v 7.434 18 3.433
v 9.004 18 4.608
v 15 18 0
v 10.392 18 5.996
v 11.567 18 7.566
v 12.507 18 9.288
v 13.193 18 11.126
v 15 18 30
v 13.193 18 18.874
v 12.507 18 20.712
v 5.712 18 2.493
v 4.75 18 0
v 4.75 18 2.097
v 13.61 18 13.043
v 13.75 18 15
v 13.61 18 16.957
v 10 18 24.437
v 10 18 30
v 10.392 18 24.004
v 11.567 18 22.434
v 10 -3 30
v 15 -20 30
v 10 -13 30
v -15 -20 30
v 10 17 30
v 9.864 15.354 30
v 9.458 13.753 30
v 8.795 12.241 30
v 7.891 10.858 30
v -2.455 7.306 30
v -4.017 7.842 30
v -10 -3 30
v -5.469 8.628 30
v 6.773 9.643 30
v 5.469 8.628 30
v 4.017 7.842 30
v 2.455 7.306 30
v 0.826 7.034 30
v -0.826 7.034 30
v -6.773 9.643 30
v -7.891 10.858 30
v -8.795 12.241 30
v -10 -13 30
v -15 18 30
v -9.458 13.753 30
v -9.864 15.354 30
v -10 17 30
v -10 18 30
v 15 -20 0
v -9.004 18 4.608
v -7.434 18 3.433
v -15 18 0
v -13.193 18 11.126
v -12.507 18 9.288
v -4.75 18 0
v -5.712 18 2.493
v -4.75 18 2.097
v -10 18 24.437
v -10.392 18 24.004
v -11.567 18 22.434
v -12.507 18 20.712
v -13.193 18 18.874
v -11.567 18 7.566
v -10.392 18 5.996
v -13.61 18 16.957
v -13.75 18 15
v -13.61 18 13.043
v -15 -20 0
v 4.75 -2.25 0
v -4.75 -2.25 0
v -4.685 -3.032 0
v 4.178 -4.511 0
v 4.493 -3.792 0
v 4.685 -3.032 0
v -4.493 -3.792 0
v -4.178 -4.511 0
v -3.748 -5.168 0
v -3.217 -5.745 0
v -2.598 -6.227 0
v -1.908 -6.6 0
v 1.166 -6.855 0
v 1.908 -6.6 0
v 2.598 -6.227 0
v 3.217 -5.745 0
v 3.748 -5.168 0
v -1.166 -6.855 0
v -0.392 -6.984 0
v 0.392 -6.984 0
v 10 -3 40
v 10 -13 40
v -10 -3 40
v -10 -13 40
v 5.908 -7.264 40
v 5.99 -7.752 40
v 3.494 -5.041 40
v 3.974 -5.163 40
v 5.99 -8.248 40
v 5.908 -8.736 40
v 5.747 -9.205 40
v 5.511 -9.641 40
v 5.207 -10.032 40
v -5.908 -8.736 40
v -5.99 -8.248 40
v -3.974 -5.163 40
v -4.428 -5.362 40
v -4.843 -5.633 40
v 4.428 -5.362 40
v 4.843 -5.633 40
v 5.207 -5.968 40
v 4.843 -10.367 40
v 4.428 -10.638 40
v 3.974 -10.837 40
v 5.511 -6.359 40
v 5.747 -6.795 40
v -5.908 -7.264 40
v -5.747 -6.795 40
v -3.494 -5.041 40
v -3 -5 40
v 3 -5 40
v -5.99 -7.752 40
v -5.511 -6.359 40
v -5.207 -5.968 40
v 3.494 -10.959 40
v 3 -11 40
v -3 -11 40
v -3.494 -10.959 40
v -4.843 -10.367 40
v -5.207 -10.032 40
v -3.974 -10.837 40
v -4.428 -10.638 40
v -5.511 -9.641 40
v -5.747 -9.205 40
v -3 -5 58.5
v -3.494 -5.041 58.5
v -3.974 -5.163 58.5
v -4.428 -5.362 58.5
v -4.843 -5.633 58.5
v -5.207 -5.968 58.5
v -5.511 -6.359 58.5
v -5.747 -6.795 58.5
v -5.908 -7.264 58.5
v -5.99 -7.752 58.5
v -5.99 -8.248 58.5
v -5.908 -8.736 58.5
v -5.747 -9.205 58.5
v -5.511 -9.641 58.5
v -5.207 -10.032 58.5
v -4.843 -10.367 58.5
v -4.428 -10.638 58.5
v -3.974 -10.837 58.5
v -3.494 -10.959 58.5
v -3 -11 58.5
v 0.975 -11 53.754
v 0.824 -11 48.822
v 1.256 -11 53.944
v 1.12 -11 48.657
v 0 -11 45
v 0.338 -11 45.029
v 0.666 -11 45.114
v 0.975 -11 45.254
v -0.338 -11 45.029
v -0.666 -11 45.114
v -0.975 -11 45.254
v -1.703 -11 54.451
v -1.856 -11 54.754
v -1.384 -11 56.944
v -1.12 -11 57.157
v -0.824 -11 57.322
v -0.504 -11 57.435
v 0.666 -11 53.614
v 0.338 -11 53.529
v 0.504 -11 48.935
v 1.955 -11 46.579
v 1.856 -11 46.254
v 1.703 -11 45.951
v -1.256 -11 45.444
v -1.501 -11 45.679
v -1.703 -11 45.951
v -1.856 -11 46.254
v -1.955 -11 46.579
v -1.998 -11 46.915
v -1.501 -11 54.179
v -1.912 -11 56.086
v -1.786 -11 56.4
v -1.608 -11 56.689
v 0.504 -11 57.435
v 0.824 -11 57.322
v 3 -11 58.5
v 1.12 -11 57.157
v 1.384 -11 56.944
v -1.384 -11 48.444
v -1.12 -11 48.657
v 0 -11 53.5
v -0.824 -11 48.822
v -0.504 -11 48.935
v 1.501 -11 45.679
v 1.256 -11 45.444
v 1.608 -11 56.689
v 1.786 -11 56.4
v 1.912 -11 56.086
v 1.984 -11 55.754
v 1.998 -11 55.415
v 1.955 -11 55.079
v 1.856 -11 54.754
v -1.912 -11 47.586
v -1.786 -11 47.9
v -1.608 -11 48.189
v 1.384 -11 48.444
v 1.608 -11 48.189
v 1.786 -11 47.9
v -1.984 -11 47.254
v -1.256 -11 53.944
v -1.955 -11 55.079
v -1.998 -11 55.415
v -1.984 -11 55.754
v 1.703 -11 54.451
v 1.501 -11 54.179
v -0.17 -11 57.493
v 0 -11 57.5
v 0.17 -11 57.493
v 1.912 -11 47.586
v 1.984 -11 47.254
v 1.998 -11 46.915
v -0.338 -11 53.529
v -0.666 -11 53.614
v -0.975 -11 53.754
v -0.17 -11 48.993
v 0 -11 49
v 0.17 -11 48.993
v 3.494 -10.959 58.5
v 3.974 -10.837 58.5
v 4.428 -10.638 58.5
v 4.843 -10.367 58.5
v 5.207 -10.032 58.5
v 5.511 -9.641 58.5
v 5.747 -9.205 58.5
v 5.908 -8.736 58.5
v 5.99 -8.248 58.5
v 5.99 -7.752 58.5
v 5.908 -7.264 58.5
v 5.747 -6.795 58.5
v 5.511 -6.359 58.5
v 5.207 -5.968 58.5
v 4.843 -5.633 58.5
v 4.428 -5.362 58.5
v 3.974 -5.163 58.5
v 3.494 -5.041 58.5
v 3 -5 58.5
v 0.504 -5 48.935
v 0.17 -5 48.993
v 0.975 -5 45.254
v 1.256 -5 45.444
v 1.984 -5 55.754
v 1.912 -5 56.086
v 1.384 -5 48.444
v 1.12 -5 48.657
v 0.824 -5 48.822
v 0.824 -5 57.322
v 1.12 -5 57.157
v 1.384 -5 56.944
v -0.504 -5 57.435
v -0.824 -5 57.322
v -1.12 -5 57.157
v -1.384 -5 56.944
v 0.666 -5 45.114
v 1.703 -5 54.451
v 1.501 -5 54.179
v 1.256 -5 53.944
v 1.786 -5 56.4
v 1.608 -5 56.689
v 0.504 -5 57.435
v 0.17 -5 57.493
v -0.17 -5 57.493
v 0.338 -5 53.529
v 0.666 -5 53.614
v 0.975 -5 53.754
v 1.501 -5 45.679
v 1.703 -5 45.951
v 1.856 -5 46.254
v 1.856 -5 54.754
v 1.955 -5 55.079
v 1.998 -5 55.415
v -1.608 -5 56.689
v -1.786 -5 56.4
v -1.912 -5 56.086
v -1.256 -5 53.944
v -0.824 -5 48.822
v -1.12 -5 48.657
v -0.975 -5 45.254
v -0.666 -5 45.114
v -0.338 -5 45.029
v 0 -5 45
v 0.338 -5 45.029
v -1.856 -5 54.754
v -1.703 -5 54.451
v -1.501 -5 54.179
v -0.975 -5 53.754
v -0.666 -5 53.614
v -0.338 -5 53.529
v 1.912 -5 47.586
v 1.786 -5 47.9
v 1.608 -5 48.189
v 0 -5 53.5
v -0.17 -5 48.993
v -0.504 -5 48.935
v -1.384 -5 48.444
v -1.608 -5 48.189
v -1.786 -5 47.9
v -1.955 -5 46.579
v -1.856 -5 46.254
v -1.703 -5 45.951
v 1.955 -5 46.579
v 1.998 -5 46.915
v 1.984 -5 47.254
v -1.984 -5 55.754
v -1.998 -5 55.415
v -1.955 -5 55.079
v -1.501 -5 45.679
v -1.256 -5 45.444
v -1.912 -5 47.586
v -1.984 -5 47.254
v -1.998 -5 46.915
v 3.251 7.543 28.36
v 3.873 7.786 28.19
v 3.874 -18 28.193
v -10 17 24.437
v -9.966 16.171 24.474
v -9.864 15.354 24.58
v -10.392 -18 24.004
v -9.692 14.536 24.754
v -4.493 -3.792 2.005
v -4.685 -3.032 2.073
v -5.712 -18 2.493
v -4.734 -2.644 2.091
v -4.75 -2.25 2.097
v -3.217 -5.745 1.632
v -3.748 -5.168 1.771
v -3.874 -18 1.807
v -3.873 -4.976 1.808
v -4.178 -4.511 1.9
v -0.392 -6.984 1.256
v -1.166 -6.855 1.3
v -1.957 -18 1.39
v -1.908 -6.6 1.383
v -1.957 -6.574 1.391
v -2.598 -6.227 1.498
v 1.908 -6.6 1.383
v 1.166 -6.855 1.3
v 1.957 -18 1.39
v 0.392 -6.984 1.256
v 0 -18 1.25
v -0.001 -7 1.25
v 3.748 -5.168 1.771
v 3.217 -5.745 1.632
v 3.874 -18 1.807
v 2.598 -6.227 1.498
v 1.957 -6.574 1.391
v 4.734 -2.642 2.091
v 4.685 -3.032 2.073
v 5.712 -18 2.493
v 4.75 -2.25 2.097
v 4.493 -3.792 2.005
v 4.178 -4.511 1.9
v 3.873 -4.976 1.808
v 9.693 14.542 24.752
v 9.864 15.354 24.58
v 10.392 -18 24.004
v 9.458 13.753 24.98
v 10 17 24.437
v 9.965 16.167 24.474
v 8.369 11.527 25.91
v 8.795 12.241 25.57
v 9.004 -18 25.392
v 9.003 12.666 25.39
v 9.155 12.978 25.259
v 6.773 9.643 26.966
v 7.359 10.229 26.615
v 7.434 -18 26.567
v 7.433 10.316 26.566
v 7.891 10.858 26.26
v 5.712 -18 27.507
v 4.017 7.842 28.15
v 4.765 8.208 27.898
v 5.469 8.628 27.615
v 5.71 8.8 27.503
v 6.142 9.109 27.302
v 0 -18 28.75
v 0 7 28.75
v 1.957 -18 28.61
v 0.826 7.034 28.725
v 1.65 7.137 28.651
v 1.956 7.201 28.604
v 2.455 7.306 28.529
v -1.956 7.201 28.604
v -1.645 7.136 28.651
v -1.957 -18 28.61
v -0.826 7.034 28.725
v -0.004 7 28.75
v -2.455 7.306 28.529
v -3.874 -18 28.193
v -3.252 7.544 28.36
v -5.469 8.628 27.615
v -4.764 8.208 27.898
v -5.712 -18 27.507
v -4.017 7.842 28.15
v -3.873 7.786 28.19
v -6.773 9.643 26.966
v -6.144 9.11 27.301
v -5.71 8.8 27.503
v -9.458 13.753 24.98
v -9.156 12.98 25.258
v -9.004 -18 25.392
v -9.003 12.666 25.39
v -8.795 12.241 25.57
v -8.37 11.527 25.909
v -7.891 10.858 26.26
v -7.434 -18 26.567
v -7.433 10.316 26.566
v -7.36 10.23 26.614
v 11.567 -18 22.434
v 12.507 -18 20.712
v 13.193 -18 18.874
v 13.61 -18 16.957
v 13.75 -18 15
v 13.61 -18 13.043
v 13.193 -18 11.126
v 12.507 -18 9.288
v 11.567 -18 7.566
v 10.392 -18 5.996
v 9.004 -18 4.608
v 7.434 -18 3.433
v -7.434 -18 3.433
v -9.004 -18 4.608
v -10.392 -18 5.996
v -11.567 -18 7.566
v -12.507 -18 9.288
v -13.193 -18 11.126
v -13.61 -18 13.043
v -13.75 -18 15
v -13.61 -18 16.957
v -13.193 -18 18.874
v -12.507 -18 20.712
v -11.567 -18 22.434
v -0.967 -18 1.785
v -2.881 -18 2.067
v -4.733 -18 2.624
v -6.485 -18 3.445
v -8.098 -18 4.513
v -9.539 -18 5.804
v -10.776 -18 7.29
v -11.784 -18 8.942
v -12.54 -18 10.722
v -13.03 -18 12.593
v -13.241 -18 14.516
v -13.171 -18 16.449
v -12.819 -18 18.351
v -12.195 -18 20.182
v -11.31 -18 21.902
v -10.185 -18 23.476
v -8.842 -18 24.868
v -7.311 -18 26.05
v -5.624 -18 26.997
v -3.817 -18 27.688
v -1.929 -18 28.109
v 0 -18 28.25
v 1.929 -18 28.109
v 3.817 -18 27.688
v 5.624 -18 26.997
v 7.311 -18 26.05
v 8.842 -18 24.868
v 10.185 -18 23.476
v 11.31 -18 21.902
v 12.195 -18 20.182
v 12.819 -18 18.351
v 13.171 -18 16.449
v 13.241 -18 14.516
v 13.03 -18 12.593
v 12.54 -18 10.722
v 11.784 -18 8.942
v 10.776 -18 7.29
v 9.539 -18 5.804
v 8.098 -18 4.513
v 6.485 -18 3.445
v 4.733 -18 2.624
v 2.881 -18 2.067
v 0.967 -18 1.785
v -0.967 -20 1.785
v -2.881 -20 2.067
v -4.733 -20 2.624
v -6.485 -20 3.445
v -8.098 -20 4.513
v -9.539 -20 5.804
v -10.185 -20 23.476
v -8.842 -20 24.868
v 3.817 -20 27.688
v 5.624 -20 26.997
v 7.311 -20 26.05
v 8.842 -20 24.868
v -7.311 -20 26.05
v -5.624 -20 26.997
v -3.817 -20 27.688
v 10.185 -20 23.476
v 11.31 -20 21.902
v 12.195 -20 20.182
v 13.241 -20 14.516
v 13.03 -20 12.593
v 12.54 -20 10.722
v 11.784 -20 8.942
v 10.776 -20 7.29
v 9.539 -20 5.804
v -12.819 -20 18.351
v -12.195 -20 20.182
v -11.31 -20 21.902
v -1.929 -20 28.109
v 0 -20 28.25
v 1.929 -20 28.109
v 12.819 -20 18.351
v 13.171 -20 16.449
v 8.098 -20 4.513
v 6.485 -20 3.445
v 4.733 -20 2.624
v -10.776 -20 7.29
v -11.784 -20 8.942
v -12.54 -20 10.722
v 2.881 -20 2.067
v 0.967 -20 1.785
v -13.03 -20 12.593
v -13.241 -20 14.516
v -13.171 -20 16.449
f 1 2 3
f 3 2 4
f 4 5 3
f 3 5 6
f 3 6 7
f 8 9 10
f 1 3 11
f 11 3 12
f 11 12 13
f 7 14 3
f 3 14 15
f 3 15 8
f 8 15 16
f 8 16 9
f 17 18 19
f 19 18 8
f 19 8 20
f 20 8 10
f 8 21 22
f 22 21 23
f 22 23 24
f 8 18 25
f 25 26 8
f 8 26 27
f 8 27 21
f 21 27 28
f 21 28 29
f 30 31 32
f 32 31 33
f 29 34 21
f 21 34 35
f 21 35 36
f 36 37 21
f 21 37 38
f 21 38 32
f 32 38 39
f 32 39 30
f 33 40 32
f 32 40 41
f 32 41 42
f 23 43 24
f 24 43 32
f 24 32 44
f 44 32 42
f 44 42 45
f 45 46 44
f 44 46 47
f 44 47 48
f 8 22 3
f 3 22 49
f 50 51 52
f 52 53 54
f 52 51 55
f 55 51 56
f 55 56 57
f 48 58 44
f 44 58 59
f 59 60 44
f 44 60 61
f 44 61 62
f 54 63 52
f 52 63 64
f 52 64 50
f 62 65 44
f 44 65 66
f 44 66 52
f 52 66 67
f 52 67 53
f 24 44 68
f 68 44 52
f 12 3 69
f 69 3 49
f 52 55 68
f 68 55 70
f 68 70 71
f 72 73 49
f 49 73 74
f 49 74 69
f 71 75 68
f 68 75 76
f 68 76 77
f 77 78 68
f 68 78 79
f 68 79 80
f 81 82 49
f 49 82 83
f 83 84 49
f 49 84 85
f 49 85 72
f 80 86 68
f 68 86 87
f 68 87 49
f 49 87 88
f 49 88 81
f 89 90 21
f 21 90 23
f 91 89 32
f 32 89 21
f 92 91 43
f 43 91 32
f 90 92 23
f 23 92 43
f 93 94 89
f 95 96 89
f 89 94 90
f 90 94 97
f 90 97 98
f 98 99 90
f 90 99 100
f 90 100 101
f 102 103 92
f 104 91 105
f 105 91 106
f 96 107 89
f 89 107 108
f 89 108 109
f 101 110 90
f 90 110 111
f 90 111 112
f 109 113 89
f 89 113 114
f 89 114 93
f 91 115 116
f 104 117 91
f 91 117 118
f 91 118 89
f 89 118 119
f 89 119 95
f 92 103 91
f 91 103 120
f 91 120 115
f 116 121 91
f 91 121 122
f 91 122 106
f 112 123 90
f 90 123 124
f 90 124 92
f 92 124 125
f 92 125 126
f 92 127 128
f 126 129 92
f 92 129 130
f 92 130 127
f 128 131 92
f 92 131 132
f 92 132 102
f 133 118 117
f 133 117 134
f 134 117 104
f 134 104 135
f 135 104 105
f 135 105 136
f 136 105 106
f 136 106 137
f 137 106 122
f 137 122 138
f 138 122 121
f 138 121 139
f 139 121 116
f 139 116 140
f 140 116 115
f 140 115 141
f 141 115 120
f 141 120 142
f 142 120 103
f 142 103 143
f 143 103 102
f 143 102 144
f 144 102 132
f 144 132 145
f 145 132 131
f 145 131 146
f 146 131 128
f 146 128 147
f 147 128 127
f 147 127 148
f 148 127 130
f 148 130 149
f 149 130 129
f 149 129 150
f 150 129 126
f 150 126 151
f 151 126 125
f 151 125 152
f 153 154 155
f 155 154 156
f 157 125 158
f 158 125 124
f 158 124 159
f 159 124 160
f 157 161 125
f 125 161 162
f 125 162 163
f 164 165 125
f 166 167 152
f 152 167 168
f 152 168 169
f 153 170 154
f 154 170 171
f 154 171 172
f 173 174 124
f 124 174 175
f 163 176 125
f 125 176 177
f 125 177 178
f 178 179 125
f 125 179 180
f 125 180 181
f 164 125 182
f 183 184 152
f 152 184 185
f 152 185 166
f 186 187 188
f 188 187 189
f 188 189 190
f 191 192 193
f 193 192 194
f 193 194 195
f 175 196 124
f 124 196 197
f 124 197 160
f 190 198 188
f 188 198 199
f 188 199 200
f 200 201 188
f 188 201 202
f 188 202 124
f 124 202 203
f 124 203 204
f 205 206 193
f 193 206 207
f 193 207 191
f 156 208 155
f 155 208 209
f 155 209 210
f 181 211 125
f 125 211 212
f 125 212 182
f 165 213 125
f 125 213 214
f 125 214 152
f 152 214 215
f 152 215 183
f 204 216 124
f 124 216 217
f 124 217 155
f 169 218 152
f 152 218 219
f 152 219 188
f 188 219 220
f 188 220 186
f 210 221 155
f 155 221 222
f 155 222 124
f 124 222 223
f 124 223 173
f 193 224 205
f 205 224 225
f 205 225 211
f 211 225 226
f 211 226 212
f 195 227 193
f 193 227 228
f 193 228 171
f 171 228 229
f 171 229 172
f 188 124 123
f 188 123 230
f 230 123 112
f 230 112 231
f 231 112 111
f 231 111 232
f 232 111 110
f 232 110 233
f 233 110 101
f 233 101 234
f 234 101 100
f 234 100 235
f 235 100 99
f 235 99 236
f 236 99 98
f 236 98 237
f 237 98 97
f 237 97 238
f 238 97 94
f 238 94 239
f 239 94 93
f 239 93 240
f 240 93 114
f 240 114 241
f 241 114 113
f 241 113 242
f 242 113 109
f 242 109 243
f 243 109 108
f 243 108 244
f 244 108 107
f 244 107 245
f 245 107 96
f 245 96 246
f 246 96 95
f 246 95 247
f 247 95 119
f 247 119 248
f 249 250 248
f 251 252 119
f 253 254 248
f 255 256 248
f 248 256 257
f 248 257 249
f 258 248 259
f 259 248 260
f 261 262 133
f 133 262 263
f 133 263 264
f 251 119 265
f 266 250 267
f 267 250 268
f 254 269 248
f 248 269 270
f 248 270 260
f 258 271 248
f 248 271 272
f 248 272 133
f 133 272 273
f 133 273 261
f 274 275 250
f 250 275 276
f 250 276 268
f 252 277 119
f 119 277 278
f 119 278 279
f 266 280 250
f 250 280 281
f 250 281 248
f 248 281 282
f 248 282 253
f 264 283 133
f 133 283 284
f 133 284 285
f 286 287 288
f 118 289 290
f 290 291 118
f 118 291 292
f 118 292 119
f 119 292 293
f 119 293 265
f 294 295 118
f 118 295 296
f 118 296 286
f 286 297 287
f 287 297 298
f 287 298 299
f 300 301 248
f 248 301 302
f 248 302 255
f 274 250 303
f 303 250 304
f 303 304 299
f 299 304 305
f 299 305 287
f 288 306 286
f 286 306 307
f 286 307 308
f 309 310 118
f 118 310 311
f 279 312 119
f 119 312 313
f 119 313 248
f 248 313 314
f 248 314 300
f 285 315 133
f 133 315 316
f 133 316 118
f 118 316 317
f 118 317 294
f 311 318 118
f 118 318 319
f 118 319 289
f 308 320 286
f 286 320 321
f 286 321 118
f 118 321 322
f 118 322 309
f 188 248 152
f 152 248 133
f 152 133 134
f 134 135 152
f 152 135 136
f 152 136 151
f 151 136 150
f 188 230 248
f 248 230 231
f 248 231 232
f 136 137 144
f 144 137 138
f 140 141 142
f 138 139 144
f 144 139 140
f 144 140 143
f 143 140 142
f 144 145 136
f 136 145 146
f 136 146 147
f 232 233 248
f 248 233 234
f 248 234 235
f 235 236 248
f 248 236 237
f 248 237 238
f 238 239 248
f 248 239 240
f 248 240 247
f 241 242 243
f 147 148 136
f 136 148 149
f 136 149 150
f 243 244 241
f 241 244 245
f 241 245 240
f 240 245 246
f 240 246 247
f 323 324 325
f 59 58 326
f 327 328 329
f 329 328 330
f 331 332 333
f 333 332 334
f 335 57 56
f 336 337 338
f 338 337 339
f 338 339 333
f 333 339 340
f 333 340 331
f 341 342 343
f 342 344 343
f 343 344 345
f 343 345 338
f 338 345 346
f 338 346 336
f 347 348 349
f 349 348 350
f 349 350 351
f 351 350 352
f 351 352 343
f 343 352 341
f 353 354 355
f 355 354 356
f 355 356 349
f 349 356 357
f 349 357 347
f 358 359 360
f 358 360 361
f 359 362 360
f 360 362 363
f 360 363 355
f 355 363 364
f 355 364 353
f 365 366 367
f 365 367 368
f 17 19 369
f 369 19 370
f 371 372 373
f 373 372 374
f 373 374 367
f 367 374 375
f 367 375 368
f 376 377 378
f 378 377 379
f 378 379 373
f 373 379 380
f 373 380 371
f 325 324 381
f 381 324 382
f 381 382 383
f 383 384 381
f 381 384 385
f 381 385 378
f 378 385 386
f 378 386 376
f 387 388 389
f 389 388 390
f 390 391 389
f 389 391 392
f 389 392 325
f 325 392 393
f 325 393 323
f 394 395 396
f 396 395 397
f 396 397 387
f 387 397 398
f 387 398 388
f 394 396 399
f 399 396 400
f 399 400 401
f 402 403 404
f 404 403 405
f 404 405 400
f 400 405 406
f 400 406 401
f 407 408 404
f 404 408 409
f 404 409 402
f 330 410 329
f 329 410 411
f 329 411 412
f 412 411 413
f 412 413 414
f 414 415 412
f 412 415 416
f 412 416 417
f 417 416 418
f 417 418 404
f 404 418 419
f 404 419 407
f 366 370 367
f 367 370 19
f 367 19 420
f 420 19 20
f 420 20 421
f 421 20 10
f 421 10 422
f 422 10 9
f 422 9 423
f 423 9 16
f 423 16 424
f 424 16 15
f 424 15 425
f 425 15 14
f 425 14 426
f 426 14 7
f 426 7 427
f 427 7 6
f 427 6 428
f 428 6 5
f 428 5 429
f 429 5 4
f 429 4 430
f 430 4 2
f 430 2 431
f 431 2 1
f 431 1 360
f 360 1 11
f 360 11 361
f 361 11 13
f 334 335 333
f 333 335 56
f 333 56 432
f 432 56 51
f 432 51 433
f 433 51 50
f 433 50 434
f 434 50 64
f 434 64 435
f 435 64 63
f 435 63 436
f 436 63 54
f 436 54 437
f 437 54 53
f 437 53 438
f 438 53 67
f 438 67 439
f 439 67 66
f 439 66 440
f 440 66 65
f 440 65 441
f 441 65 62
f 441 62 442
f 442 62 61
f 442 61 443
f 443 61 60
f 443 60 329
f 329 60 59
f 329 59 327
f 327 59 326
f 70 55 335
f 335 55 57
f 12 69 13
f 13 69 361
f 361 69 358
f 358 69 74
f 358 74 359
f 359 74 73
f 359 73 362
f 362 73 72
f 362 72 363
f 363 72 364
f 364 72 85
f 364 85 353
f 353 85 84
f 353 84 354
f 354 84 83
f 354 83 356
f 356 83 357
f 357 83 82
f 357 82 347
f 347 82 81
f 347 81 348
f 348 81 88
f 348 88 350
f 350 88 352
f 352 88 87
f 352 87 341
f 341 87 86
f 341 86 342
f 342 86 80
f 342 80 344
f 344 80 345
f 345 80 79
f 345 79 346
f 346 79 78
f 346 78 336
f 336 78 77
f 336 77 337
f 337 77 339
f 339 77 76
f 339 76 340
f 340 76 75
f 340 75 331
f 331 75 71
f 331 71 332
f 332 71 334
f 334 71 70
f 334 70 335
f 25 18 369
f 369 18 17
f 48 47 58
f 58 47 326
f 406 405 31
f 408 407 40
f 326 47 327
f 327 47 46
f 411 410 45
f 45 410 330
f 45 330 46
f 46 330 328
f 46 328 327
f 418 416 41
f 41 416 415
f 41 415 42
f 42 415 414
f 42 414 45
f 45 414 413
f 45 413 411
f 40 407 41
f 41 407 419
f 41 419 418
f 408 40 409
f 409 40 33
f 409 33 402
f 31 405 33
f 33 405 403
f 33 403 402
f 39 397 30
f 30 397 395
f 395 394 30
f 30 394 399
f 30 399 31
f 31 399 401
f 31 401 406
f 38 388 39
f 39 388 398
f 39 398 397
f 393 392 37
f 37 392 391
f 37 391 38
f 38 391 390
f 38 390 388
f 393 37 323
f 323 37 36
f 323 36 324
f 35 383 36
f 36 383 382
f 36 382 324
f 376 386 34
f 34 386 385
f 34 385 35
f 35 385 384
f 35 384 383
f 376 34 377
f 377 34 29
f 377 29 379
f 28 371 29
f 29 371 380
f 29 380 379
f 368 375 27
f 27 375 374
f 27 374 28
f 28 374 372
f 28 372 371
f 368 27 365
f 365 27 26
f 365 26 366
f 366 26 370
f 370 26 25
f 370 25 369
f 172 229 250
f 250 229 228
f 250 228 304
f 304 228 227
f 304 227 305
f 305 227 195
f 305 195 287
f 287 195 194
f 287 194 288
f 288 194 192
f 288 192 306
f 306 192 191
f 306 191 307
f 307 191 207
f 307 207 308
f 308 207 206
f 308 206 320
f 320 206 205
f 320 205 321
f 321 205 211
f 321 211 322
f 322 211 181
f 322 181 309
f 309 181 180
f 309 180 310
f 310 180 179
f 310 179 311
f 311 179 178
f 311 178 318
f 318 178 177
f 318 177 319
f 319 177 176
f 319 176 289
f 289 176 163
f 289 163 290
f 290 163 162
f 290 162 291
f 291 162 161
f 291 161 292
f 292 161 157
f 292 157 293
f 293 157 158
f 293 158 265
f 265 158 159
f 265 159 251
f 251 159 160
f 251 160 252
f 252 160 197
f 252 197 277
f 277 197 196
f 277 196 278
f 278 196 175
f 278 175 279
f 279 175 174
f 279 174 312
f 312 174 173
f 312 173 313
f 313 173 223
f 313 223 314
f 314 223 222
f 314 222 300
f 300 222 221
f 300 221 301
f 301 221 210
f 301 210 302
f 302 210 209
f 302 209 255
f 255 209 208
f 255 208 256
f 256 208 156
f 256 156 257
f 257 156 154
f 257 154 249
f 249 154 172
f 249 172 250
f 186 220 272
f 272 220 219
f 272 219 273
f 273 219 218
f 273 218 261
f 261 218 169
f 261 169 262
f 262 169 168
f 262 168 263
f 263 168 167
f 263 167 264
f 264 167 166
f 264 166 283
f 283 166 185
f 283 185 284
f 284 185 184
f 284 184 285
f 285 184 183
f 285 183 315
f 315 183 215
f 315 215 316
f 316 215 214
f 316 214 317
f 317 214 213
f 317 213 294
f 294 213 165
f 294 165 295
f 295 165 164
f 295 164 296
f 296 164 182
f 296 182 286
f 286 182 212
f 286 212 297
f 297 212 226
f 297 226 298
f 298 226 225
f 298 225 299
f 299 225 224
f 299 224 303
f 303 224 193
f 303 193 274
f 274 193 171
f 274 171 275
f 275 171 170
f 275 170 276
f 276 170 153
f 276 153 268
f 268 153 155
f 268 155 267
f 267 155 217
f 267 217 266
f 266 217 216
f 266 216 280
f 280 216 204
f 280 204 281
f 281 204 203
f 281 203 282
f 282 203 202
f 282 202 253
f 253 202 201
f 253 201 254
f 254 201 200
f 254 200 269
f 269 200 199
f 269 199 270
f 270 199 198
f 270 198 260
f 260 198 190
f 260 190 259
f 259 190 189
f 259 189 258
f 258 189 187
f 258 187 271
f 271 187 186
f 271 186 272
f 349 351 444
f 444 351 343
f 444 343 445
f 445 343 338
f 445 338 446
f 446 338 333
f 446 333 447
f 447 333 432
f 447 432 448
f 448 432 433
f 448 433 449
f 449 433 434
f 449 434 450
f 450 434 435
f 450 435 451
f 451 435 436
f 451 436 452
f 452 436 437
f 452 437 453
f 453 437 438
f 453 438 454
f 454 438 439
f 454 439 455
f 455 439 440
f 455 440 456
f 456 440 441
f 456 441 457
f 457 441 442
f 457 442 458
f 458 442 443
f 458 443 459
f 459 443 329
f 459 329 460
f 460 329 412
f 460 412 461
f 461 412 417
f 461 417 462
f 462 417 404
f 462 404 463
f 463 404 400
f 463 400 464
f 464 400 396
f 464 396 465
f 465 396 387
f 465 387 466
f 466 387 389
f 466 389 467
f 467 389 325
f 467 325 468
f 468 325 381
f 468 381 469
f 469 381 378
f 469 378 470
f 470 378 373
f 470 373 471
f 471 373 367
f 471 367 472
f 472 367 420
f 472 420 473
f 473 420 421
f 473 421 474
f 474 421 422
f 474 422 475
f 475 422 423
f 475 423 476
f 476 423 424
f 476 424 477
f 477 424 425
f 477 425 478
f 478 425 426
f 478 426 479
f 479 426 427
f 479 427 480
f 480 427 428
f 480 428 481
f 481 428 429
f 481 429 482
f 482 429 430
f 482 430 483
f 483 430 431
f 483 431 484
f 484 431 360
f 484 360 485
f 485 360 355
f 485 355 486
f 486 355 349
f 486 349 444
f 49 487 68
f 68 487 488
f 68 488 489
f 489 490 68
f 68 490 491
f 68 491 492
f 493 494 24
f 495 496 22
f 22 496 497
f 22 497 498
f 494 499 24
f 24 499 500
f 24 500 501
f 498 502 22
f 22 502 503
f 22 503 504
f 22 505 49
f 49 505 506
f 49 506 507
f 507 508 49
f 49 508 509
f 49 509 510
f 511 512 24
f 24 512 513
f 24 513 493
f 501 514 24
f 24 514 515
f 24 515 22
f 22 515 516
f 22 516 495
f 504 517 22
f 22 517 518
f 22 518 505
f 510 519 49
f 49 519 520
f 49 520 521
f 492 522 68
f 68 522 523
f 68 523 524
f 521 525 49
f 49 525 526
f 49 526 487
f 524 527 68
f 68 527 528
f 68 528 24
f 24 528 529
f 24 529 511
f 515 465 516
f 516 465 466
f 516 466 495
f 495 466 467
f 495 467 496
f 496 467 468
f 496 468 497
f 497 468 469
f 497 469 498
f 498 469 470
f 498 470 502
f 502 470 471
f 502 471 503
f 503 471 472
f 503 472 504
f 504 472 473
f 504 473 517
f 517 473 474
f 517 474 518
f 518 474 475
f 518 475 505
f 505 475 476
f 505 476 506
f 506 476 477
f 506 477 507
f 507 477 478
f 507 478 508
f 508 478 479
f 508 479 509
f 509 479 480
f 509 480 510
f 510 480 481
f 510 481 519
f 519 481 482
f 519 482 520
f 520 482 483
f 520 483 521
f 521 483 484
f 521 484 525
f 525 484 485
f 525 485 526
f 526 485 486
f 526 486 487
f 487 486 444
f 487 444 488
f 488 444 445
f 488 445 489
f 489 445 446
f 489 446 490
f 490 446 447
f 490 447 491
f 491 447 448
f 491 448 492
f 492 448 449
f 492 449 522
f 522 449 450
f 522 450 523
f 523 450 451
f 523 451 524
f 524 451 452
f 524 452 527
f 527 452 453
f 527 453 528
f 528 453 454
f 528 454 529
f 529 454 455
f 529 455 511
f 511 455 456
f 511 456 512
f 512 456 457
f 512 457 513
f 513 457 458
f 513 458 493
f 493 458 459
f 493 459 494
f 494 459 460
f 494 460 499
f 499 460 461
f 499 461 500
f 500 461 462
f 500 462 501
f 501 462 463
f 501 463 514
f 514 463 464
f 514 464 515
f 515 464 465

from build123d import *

# Parameters (mm, degrees)
SKETCH1_W               = 30
SKETCH1_H               = 36
BOSS_EXTRUDE1_DEPTH     = 30
SKETCH2_W               = 20
SKETCH2_H               = 10
BOSS_EXTRUDE2_DEPTH     = 10
BOSS_EXTRUDE3_DEPTH     = 18.5
CUT_EXTRUDE2_REACH      = 72.308
SKETCH4_R               = 13.75
CUT_EXTRUDE5_REACH      = 65.018
CUT_EXTRUDE5_END_RADIUS = 13.75
CUT_EXTRUDE6_REACH      = 40.066
CUT_EXTRUDE6_END_RADIUS = 13.75
CUT_EXTRUDE7_REACH      = 72.308
SKETCH9_R               = 2
SKETCH10_W              = 30
SKETCH10_H              = 30
BOSS_EXTRUDE4_DEPTH     = 2
CUT_EXTRUDE8_REACH      = 72.308
SKETCH11_R              = 13.25


with BuildPart() as part:
    # Sketch1 → Boss-Extrude1 (new body)
    with BuildSketch(Plane.XY):
        Rectangle(SKETCH1_W, SKETCH1_H)
    extrude(amount=BOSS_EXTRUDE1_DEPTH)

    # Sketch2 → Boss-Extrude2 (add)
    with BuildSketch(Plane.XY.offset(30)):
        with Locations((0, -8)):
            Rectangle(SKETCH2_W, SKETCH2_H)
    extrude(amount=BOSS_EXTRUDE2_DEPTH)

    # Sketch3 → Boss-Extrude3 (add)
    with BuildSketch(Plane.XY.offset(40)):
        with BuildLine():
            Line((-3, -5), (3, -5))
            ThreePointArc((3, -5), (6, -8), (3, -11))
            Line((3, -11), (-3, -11))
            ThreePointArc((-3, -11), (-6, -8), (-3, -5))
        make_face()
    extrude(amount=BOSS_EXTRUDE3_DEPTH)

    # Sketch4 → Cut-Extrude2 (cut, up to next)
    with BuildSketch(Plane(origin=(0, 18, 0), x_dir=(1, 0, 0), z_dir=(0, 1, 0)), mode=Mode.PRIVATE) as cut_extrude2_sk1:
        with Locations(Location((0, -15, 0), (0, 0, 270))):
            Circle(SKETCH4_R)
    cut_extrude2_tool1 = extrude(cut_extrude2_sk1.sketch, amount=-CUT_EXTRUDE2_REACH, mode=Mode.PRIVATE) & part.part
    add(cut_extrude2_tool1.solids().sort_by_distance((0, 18, 15))[0], mode=Mode.SUBTRACT)

    # Cut-Extrude5: up to this cylinder (the profile starts outside it)
    cut_extrude5_end = Plane(origin=(0, 7.875, 15), z_dir=(0, 1, 0)) * Cylinder(CUT_EXTRUDE5_END_RADIUS, 158.536, mode=Mode.PRIVATE)
    # Sketch6 → Cut-Extrude5 (cut, up to the surface)
    with BuildSketch(Plane(origin=(0, 0, 0), x_dir=(-1, 0, 0), z_dir=(0, 0, -1)), mode=Mode.PRIVATE) as cut_extrude5_sk1:
        with BuildLine():
            Line((-4.75, -2.25), (-4.75, 18))
            ThreePointArc((-4.75, 18), (0, 22.75), (4.75, 18))
            Line((4.75, 18), (4.75, -2.25))
            ThreePointArc((4.75, -2.25), (0, -7), (-4.75, -2.25))
        make_face()
    cut_extrude5_tool1 = extrude(cut_extrude5_sk1.sketch, amount=-CUT_EXTRUDE5_REACH, mode=Mode.PRIVATE) - cut_extrude5_end
    add(cut_extrude5_tool1.solids().sort_by_distance((0, 7.875, 0))[0], mode=Mode.SUBTRACT)

    # Cut-Extrude6: up to this cylinder (the profile starts outside it)
    cut_extrude6_end = Plane(origin=(0, 17.5, 15), z_dir=(0, 1, 0)) * Cylinder(CUT_EXTRUDE6_END_RADIUS, 108.632, mode=Mode.PRIVATE)
    # Sketch8 → Cut-Extrude6 (cut, up to the surface)
    with BuildSketch(Plane.XY.offset(30), mode=Mode.PRIVATE) as cut_extrude6_sk1:
        with BuildLine():
            Line((-10, 17), (-10, 18))
            ThreePointArc((-10, 18), (0, 28), (10, 18))
            Line((10, 18), (10, 17))
            ThreePointArc((10, 17), (0, 7), (-10, 17))
        make_face()
    cut_extrude6_tool1 = extrude(cut_extrude6_sk1.sketch, amount=-CUT_EXTRUDE6_REACH, mode=Mode.PRIVATE) - cut_extrude6_end
    add(cut_extrude6_tool1.solids().sort_by_distance((0, 17.5, 30))[0], mode=Mode.SUBTRACT)

    # Sketch9 → Cut-Extrude7 (cut, up to next)
    with BuildSketch(Plane.XZ.offset(18), mode=Mode.PRIVATE) as cut_extrude7_sk1:
        with Locations(Location((0, 55.5, 0), (0, 0, 270))):
            Circle(SKETCH9_R)
    cut_extrude7_tool1 = extrude(cut_extrude7_sk1.sketch, amount=-CUT_EXTRUDE7_REACH, mode=Mode.PRIVATE) & part.part
    # Sketch9 → Cut-Extrude7 (cut, up to next)
    with BuildSketch(Plane.XZ.offset(18), mode=Mode.PRIVATE) as cut_extrude7_sk2:
        with Locations(Location((0, 47, 0), (0, 0, 270))):
            Circle(SKETCH9_R)
    cut_extrude7_tool2 = extrude(cut_extrude7_sk2.sketch, amount=-CUT_EXTRUDE7_REACH, mode=Mode.PRIVATE) & part.part
    add(cut_extrude7_tool1.solids().sort_by_distance((0, -18, 55.5))[0], mode=Mode.SUBTRACT)
    add(cut_extrude7_tool2.solids().sort_by_distance((0, -18, 47))[0], mode=Mode.SUBTRACT)

    # Sketch10 → Boss-Extrude4 (add)
    with BuildSketch(Plane(origin=(0, -18, 0), x_dir=(-1, 0, 0), z_dir=(0, -1, 0))):
        with Locations((0, -15)):
            Rectangle(SKETCH10_W, SKETCH10_H)
    extrude(amount=BOSS_EXTRUDE4_DEPTH)

    # Sketch11 → Cut-Extrude8 (cut, up to next)
    with BuildSketch(Plane(origin=(0, -18, 0), x_dir=(1, 0, 0), z_dir=(0, 1, 0)), mode=Mode.PRIVATE) as cut_extrude8_sk1:
        with Locations(Location((0, -15, 0), (0, 0, 270))):
            Circle(SKETCH11_R)
    cut_extrude8_tool1 = extrude(cut_extrude8_sk1.sketch, amount=-CUT_EXTRUDE8_REACH, mode=Mode.PRIVATE) & part.part
    add(cut_extrude8_tool1.solids().sort_by_distance((0, -18, 15))[0], mode=Mode.SUBTRACT)


solid = part.part
